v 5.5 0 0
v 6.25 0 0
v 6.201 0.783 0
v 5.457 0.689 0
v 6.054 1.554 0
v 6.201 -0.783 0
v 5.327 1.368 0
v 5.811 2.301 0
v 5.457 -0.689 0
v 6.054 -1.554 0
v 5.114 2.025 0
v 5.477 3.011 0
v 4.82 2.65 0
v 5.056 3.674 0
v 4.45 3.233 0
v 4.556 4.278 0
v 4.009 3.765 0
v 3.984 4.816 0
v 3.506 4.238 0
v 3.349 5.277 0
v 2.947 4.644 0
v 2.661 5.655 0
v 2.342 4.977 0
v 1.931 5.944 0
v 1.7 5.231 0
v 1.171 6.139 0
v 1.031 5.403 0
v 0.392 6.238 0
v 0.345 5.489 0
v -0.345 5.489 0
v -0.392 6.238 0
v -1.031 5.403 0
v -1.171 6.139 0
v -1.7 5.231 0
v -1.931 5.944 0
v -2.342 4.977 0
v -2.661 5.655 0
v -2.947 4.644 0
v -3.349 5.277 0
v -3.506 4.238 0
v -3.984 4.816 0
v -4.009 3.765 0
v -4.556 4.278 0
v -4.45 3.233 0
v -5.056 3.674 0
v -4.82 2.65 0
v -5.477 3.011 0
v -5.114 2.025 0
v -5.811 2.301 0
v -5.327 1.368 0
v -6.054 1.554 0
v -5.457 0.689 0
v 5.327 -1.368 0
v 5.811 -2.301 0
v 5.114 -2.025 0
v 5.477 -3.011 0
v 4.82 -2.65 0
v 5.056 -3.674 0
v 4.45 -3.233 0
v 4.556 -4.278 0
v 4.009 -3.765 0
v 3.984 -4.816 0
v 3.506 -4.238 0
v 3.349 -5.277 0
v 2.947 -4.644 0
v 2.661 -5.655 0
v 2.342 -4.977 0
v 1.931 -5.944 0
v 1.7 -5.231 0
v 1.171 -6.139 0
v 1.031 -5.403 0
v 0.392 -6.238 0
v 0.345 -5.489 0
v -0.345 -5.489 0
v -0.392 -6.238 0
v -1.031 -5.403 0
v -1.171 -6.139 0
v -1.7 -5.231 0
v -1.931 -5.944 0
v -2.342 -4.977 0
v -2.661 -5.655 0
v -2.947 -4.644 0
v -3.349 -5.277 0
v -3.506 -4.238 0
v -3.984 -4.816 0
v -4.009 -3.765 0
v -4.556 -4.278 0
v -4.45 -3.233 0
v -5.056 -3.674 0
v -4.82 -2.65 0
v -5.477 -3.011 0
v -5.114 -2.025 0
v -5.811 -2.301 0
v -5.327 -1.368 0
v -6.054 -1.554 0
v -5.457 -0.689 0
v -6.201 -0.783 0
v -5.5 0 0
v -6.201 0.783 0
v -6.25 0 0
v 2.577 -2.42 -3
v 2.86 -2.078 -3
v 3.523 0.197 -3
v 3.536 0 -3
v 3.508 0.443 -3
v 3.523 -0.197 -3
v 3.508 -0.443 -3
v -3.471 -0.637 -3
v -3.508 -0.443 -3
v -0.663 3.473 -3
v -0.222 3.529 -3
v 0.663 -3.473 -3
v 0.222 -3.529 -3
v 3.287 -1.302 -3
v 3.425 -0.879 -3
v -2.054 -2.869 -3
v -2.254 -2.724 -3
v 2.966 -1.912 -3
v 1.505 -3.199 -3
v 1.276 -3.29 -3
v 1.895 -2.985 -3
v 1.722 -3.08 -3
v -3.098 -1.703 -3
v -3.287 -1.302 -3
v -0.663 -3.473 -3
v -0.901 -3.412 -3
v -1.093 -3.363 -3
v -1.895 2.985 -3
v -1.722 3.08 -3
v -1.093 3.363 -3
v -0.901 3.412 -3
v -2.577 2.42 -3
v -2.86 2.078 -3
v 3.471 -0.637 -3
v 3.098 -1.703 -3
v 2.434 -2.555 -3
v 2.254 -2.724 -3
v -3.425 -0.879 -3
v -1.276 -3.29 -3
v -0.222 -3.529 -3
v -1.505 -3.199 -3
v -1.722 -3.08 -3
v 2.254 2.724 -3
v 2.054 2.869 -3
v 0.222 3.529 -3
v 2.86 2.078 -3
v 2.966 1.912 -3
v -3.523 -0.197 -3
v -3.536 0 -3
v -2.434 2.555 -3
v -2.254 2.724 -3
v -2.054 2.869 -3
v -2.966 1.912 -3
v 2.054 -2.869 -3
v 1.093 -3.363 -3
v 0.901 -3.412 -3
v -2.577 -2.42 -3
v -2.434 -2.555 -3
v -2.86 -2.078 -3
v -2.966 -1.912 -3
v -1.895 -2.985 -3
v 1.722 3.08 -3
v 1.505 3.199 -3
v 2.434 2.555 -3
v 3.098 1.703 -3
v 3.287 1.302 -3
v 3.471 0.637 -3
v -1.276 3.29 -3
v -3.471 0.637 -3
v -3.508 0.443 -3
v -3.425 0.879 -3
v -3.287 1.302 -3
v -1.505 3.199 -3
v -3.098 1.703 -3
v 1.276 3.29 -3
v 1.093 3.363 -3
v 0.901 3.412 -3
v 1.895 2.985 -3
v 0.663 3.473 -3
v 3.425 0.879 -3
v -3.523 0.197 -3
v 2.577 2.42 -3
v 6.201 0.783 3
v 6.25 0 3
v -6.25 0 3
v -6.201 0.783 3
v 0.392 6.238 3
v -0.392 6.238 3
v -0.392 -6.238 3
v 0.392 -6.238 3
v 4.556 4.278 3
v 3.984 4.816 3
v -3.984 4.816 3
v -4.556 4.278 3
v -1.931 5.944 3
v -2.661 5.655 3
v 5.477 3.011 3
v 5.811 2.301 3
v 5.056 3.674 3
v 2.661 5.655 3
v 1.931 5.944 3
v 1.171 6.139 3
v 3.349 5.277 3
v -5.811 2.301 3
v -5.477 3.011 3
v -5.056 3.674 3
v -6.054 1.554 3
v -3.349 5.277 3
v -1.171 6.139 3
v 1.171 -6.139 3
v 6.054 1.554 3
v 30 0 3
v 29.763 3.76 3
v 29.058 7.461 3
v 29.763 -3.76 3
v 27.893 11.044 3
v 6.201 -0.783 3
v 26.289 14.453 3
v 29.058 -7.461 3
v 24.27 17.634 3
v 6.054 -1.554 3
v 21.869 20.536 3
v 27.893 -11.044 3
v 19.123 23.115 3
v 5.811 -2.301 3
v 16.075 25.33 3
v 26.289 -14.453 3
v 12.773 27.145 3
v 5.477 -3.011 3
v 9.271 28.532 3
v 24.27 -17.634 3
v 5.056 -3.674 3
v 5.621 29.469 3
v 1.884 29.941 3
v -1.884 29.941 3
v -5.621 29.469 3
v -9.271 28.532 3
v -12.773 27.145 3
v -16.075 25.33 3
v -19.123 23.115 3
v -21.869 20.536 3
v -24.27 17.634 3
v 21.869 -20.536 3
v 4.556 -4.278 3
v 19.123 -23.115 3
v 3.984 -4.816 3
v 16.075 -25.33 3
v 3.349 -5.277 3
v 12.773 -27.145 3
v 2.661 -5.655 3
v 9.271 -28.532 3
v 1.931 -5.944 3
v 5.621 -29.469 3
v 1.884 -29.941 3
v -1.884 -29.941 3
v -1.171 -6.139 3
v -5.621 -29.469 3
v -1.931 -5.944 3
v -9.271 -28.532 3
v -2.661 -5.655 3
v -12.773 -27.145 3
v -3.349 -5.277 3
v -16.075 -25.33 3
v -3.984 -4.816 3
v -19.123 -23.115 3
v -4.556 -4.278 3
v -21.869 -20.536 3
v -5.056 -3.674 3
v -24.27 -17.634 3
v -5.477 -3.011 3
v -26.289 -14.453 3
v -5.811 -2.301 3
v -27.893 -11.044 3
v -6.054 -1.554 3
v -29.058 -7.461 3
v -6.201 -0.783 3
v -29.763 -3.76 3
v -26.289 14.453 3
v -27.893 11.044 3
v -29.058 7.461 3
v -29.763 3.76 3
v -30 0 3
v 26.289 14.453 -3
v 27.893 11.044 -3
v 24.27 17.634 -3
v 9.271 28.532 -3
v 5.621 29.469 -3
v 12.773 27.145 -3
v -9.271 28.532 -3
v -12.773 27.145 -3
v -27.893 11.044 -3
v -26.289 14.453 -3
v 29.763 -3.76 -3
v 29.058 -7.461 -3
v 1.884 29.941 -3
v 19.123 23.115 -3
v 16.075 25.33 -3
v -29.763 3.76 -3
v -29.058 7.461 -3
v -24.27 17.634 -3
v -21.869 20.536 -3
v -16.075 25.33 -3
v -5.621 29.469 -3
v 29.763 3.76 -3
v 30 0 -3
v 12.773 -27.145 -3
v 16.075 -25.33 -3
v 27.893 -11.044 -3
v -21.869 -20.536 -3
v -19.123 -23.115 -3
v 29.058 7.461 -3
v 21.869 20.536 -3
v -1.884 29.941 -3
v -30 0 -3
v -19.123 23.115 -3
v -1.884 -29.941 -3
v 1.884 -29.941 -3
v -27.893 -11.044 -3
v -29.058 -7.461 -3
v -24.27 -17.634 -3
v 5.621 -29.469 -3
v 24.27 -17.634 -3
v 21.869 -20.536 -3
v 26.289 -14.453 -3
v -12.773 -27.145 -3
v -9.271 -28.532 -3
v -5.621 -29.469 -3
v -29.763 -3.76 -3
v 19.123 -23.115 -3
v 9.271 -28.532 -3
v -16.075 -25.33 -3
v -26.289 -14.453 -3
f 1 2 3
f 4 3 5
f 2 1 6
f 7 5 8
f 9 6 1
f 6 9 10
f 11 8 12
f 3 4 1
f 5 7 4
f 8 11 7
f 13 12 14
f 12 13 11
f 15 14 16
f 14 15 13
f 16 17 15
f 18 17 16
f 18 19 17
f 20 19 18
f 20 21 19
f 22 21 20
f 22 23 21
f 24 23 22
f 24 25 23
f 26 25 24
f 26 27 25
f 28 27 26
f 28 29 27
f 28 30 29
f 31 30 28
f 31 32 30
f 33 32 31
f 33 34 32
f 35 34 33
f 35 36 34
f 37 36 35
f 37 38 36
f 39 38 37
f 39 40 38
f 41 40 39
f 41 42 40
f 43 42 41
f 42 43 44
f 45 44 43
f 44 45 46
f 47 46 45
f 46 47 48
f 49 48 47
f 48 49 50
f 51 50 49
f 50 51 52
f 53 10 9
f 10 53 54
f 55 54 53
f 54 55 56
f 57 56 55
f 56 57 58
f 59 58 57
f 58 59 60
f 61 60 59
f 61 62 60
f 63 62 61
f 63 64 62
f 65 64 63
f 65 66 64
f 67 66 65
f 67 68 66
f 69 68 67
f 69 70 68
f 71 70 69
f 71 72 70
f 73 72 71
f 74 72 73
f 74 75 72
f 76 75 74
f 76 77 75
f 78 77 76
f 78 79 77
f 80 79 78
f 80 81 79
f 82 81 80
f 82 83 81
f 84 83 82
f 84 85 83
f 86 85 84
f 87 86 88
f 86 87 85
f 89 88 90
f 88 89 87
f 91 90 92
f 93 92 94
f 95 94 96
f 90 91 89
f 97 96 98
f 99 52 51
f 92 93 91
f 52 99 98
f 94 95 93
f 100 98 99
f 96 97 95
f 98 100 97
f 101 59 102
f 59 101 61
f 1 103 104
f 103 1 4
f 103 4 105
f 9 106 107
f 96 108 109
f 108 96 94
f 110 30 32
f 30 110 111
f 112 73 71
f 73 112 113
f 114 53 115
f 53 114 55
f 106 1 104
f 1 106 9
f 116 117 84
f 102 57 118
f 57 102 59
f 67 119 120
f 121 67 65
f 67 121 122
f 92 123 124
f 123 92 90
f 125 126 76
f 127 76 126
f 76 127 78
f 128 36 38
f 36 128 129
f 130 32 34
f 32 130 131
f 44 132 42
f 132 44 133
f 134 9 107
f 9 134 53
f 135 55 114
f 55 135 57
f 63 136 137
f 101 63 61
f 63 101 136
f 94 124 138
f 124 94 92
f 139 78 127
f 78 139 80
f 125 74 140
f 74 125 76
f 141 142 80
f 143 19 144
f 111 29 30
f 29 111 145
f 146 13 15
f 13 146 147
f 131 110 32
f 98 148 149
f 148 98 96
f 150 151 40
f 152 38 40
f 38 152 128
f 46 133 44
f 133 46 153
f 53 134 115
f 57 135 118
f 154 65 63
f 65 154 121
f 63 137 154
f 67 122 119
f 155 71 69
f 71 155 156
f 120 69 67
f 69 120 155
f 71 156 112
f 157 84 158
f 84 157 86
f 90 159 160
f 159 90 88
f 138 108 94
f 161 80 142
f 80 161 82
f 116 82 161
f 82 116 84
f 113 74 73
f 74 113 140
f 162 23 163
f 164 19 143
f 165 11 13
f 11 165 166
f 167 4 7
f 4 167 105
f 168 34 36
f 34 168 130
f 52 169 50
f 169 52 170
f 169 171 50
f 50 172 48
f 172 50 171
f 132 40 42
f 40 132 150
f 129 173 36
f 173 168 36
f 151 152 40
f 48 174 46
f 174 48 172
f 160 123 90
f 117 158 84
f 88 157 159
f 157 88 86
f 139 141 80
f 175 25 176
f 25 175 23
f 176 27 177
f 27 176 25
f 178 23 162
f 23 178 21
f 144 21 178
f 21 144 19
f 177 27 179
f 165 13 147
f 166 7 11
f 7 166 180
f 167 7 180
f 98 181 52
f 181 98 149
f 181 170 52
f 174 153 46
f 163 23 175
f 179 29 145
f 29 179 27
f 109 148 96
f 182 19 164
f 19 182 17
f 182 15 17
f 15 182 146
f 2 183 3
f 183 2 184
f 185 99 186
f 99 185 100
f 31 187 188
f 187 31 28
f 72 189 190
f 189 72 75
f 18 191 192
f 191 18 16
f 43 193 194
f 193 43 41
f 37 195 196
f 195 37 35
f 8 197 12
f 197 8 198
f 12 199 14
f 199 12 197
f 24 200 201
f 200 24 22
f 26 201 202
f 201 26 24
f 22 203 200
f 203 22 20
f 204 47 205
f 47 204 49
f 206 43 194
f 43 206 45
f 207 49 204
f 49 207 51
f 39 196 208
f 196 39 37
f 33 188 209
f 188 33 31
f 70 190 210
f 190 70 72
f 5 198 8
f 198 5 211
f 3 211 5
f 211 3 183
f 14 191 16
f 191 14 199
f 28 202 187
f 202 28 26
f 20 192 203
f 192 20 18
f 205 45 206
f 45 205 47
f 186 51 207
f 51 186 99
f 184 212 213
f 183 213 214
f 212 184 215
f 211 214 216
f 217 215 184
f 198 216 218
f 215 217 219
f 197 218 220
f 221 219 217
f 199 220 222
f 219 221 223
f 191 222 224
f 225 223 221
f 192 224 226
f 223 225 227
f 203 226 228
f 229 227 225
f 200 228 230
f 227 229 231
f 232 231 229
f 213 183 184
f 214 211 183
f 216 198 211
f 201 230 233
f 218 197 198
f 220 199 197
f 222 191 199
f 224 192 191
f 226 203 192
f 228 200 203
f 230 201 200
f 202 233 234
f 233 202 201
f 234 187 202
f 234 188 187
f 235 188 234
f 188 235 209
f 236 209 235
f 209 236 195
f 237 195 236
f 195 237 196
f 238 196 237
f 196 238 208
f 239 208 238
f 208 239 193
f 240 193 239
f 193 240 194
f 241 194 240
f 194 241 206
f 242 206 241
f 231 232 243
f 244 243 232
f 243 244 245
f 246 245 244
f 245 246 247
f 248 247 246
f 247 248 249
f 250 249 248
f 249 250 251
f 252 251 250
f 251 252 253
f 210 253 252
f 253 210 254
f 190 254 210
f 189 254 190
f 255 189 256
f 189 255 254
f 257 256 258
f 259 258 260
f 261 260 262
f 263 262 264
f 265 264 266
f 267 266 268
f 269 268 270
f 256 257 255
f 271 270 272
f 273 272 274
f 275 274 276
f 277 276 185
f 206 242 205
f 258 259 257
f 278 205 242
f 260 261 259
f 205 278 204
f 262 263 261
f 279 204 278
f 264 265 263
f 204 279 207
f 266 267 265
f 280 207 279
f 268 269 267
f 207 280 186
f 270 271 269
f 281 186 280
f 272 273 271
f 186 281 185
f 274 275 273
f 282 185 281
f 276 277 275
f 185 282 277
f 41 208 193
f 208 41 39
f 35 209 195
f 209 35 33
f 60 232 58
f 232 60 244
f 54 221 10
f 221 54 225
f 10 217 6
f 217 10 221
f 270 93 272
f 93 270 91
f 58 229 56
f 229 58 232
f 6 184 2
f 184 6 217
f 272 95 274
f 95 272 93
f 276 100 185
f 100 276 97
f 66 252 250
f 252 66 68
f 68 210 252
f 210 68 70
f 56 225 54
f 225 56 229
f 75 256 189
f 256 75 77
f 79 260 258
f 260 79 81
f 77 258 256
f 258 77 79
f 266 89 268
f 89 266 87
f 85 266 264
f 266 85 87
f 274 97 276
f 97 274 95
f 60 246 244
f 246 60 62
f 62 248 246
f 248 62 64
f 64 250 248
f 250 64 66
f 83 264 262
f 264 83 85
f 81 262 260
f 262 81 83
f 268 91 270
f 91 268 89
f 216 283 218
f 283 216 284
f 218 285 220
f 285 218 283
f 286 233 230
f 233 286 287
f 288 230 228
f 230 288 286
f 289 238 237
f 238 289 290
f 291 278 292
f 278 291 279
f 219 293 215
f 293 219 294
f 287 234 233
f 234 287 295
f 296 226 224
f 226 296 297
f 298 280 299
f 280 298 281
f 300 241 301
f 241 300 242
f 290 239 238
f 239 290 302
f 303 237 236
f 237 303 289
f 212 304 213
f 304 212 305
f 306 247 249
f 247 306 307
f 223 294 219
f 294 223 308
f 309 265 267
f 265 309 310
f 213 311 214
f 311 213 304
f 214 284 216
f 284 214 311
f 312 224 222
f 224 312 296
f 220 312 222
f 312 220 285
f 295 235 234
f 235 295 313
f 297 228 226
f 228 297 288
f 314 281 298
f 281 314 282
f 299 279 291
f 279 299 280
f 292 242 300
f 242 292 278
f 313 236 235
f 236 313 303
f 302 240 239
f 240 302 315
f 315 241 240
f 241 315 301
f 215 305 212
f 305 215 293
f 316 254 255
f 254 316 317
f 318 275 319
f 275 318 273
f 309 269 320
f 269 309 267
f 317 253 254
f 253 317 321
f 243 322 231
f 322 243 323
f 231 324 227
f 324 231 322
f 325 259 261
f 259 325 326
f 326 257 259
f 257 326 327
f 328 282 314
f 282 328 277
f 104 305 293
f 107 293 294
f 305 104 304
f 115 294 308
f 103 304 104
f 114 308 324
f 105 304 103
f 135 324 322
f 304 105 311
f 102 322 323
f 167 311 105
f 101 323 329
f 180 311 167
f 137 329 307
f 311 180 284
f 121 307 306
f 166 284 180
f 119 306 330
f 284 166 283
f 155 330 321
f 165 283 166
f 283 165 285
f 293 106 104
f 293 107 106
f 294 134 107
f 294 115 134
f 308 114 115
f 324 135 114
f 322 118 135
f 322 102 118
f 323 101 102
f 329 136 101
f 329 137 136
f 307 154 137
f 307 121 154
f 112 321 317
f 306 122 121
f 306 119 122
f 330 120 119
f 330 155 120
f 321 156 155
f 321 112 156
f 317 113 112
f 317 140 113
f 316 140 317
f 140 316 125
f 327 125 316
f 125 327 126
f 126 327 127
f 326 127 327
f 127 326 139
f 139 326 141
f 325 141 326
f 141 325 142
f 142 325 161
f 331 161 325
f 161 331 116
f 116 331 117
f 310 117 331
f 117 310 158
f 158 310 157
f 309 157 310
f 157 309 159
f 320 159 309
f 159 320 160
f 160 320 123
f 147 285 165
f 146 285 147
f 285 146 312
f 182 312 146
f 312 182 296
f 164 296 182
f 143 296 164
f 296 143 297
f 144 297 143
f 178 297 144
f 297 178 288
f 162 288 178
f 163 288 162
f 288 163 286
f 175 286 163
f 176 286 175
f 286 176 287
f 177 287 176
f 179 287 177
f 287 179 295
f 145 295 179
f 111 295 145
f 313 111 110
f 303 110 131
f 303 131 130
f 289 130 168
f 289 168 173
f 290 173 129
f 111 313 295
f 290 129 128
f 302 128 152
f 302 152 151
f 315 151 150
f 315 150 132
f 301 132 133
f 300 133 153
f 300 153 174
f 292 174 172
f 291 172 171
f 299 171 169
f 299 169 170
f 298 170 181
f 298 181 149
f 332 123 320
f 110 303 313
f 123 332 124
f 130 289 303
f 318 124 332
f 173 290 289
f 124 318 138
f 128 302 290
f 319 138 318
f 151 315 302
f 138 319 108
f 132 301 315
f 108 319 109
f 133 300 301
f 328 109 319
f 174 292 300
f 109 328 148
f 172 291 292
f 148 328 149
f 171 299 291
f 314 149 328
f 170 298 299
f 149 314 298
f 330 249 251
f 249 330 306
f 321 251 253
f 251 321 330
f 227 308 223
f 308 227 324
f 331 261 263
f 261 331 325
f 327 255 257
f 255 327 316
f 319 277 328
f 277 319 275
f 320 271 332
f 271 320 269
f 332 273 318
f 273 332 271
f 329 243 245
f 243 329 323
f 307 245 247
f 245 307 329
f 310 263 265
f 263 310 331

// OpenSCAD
$fn = 50;

difference() {
	union() {
		translate(v = [0, 0, -3.0]) {
			cylinder(h = 6, r = 30.0);
		}
	}
	union() {
		translate(v = [0, 0, 0]) {
			rotate(a = [0, 0, 0]) {
				difference() {
					union() {
						translate(v = [0, 0, -6.0]) {
							cylinder(h = 6, r = 2.25);
						}
						translate(v = [0, 0, -4.2]) {
							cylinder(h = 4.2, r1 = 2.75, r2 = 5.5);
						}
						translate(v = [0, 0, -6.0]) {
							cylinder(h = 6, r = 2.75);
						}
						translate(v = [0, 0, -6.0]) {
							cylinder(h = 6, r = 2.25);
						}
					}
					union();
				}
			}
		}
		#cylinder(h = 3, r = 6.25);
	}
}
